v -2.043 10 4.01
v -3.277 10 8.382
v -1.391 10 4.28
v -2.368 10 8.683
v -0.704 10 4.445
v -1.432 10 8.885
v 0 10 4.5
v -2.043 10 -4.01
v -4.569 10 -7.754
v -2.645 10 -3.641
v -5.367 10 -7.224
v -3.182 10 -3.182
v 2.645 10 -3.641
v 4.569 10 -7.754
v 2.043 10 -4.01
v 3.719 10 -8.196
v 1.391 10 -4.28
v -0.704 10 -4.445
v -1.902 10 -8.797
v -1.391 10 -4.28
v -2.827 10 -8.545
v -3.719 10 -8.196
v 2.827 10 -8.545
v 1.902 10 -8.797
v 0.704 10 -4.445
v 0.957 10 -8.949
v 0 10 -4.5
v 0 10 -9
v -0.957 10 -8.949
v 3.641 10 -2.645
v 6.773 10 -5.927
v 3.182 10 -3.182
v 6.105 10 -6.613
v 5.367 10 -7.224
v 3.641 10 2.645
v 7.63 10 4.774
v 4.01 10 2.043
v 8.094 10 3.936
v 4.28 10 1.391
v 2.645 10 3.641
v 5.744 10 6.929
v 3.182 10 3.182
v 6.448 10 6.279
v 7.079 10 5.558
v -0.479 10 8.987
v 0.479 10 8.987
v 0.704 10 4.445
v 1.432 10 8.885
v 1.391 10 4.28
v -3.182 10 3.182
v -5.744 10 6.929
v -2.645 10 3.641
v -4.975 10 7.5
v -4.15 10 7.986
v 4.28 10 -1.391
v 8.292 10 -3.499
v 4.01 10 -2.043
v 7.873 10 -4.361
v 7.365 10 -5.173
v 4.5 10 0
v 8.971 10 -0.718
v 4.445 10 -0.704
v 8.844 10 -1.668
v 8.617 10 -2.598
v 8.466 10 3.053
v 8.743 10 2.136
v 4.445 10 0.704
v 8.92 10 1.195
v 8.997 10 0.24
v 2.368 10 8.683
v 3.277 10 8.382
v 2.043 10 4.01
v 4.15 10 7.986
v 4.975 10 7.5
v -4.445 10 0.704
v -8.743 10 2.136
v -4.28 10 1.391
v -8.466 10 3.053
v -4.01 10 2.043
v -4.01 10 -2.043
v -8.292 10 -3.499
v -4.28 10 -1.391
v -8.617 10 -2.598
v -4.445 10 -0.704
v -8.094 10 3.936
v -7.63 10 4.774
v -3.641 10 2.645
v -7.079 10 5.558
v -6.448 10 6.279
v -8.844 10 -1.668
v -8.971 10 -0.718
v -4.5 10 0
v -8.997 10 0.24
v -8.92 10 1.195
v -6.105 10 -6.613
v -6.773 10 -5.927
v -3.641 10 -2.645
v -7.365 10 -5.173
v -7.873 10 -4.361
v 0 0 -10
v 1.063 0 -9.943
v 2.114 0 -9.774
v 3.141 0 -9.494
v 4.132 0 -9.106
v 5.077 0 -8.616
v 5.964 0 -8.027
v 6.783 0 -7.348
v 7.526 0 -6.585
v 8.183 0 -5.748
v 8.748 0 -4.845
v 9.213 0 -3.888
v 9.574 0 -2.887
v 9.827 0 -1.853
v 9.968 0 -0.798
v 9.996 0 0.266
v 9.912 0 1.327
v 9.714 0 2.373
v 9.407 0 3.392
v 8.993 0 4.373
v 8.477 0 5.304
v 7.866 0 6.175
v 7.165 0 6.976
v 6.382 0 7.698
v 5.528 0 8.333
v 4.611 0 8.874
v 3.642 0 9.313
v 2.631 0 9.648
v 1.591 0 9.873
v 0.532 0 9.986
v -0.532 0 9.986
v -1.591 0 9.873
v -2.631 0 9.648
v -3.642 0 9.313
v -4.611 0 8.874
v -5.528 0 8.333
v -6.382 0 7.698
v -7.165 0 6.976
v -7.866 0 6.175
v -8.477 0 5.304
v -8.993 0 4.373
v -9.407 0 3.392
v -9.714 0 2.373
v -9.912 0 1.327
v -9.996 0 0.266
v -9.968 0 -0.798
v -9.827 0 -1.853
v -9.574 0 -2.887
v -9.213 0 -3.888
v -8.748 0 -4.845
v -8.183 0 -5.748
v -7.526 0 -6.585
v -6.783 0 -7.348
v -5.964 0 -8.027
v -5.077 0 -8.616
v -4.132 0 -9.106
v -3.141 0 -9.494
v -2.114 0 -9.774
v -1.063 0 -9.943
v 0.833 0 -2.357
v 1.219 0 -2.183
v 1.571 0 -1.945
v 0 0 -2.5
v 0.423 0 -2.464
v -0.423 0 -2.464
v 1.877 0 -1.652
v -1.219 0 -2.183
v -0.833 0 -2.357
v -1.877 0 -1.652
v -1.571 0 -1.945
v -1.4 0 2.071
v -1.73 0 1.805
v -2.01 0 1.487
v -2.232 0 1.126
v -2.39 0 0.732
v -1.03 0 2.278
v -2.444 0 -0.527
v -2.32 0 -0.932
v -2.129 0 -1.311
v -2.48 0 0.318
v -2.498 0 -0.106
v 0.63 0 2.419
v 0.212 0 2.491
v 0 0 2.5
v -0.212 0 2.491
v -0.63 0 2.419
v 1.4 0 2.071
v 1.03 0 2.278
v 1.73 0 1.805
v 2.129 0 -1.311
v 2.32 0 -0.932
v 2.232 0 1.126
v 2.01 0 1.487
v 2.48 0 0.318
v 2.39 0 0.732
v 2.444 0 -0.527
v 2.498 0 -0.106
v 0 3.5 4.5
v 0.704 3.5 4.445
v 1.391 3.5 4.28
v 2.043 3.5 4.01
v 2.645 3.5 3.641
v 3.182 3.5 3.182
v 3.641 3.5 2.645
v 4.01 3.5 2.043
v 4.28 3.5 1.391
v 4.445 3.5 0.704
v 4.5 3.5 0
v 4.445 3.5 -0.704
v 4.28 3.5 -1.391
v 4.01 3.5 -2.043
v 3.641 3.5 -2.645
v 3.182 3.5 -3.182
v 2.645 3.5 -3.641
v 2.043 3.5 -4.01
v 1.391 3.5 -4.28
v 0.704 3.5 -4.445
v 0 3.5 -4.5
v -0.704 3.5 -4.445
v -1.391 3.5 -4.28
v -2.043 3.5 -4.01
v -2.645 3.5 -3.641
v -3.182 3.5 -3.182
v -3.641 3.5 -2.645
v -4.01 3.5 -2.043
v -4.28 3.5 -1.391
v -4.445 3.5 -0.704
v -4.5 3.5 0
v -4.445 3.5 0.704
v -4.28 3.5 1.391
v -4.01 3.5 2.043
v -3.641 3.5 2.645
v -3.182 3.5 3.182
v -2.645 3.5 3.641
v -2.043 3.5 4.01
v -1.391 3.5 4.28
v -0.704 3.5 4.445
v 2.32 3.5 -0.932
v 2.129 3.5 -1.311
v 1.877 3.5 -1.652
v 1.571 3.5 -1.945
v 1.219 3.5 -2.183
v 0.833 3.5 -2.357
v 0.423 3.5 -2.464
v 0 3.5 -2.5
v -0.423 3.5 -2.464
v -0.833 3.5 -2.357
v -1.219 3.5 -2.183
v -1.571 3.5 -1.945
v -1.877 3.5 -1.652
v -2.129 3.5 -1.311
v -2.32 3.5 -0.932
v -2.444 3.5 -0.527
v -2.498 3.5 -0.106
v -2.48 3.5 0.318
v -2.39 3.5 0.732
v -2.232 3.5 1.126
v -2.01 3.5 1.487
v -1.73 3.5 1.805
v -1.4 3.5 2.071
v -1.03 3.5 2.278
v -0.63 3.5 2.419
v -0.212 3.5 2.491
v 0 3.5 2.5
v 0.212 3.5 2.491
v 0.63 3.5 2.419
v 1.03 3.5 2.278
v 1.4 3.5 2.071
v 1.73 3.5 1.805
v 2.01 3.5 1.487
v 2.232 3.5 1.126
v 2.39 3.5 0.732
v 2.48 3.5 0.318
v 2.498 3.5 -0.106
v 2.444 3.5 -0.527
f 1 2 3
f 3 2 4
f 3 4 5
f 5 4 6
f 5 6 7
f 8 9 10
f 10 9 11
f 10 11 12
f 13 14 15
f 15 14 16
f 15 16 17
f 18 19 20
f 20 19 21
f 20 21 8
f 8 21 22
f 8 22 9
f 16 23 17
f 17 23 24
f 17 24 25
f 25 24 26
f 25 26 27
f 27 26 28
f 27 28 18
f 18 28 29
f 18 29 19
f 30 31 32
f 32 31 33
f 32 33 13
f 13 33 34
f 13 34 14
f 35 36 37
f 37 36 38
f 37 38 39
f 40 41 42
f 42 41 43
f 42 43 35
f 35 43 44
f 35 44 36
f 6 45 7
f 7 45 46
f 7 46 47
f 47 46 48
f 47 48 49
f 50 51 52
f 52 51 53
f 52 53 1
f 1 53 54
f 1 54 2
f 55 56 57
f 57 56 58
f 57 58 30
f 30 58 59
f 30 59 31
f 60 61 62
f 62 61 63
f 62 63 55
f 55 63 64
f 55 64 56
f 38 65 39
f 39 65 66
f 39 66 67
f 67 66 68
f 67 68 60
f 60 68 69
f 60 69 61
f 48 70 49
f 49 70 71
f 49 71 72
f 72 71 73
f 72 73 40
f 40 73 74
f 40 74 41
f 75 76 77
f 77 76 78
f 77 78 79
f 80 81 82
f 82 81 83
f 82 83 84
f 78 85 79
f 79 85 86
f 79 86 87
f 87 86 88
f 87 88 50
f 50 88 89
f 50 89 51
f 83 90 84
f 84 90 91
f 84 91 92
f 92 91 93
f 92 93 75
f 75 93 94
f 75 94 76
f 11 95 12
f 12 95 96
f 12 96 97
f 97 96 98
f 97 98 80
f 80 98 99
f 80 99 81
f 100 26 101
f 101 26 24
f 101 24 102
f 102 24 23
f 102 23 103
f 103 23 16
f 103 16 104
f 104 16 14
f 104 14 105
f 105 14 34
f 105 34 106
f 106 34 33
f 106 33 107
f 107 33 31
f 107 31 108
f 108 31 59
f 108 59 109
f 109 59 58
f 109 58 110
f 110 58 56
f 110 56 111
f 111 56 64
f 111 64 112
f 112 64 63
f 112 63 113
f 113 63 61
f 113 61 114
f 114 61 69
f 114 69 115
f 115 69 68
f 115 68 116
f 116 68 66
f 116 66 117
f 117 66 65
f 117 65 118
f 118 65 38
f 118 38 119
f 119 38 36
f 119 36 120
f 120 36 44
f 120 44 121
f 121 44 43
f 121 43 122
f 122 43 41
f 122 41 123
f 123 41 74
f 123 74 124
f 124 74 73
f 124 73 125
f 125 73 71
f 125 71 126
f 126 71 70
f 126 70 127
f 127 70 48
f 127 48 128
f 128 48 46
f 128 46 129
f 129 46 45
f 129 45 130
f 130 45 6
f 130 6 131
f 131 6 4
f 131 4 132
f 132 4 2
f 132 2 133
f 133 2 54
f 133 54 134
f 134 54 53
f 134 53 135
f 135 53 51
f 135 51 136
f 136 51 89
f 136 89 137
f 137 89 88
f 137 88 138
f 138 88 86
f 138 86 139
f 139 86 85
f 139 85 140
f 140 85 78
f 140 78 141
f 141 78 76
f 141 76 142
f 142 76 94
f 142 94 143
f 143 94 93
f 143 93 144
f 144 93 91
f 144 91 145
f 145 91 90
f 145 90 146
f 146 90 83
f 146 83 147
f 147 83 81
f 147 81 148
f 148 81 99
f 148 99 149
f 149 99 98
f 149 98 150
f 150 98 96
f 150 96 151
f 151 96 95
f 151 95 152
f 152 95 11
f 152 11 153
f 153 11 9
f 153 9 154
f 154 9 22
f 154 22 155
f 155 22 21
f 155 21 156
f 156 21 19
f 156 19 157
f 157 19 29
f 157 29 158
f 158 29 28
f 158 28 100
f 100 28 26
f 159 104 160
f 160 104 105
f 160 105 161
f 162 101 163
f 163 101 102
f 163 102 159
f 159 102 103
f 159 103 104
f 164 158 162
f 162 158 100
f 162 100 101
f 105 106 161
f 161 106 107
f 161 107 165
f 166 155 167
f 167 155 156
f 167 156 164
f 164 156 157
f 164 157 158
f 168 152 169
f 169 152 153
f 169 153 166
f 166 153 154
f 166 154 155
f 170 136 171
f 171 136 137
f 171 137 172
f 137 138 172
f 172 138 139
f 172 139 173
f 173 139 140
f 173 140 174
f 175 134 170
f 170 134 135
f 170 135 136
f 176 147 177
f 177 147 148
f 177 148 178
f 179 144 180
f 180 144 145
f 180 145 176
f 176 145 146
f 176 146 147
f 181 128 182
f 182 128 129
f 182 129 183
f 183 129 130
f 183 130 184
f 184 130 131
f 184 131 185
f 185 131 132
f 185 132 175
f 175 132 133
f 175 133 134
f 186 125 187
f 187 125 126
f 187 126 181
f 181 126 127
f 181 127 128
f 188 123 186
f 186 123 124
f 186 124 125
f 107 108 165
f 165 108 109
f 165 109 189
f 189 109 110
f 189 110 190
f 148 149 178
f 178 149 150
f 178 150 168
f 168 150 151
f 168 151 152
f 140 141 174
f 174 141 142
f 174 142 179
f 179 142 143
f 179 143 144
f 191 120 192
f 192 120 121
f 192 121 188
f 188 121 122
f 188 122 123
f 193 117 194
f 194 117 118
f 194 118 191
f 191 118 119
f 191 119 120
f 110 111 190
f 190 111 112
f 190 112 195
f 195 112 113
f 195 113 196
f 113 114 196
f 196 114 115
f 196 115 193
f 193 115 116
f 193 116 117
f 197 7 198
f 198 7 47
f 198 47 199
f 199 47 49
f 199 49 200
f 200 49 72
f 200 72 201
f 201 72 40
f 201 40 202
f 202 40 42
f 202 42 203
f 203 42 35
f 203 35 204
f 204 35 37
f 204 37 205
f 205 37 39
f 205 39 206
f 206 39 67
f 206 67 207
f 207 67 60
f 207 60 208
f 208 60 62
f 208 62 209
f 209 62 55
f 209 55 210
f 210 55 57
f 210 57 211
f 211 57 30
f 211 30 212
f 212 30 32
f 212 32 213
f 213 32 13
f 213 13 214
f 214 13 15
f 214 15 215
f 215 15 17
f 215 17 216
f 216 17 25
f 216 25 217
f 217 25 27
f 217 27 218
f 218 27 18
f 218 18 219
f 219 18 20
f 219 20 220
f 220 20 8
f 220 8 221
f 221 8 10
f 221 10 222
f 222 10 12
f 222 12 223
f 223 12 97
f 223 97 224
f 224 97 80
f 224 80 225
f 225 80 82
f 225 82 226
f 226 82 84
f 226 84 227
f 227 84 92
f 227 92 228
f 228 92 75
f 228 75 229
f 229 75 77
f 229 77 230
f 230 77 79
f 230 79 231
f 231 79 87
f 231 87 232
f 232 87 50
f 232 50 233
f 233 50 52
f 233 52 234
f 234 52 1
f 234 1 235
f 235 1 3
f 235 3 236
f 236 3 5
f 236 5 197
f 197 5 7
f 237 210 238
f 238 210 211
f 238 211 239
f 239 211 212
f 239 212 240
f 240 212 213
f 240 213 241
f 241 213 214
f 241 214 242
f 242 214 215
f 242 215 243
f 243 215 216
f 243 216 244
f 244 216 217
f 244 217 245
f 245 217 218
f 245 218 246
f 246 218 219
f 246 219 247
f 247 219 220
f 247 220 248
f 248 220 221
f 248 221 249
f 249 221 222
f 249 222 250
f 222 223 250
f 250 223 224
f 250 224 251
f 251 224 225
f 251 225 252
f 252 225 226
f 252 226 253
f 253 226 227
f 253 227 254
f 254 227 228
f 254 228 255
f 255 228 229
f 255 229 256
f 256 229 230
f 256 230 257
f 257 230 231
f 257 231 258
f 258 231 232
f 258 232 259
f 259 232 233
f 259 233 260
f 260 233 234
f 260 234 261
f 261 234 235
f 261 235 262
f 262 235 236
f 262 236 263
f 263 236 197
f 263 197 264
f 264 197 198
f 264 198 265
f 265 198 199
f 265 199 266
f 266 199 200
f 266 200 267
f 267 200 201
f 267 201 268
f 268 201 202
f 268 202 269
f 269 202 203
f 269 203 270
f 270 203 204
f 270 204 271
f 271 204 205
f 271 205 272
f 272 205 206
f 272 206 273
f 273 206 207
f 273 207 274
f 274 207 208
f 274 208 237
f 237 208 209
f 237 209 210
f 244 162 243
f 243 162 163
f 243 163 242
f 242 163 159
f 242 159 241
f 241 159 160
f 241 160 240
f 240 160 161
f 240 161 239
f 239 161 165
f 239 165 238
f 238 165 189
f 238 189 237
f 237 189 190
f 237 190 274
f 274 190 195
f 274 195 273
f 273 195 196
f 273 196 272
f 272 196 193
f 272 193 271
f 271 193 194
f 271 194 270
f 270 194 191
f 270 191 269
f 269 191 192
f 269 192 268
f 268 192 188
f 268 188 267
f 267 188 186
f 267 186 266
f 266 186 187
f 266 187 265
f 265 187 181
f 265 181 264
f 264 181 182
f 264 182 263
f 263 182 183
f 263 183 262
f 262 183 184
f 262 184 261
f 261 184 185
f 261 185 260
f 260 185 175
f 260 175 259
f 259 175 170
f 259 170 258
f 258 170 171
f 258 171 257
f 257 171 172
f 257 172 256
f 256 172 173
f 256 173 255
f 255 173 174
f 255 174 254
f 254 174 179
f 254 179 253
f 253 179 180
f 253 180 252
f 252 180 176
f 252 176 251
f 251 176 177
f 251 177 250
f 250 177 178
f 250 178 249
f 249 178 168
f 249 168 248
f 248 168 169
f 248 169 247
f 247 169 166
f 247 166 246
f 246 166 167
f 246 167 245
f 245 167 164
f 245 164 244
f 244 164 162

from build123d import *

# Parameters (mm, degrees)
SZKIC6_R                               = 4.5
WYTNIJ_WYCI_GNI_CIE1_DEPTH             = 6.5
WYTNIJ_WYCI_GNI_CIE2_REACH             = 5.5
SZKIC7_R                               = 2.5
WYTNIJ_WYCI_GNI_CIE2_DIRECTION_2_DEPTH = 7.5


with BuildPart() as part:
    # Szkic5 → Obrót1 (revolve)
    with BuildSketch(Plane(origin=(0, 0, 0), x_dir=(0, 0, -1), z_dir=(1, 0, 0))):
        Polygon((0, 10), (-9, 10), (-10, 0), (0, 0), align=None)
    revolve(axis=Axis((0, 0, 0), (0, 1, 0)))

    # Szkic6 → Wytnij-wyciągnięcie1 (cut)
    with BuildSketch(Plane(origin=(0, 10, 0), x_dir=(1, 0, 0), z_dir=(0, 1, 0))):
        Circle(SZKIC6_R)
    extrude(amount=-WYTNIJ_WYCI_GNI_CIE1_DEPTH, mode=Mode.SUBTRACT)

    # Szkic7 → Wytnij-wyciągnięcie2 (cut, up to next)
    with BuildSketch(Plane(origin=(0, 3.5, 0), x_dir=(1, 0, 0), z_dir=(0, 1, 0)), mode=Mode.PRIVATE) as wytnij_wyci_gni_cie2_sk1:
        Circle(SZKIC7_R)
    wytnij_wyci_gni_cie2_tool1 = extrude(wytnij_wyci_gni_cie2_sk1.sketch, amount=-WYTNIJ_WYCI_GNI_CIE2_REACH, mode=Mode.PRIVATE) & part.part
    add(wytnij_wyci_gni_cie2_tool1.solids().sort_by_distance((0, 3.5, 0))[0], mode=Mode.SUBTRACT)

    # Szkic7 → Wytnij-wyciągnięcie2 direction 2 (cut)
    with BuildSketch(Plane(origin=(0, 3.5, 0), x_dir=(1, 0, 0), z_dir=(0, 1, 0))):
        Circle(SZKIC7_R)
    extrude(amount=WYTNIJ_WYCI_GNI_CIE2_DIRECTION_2_DEPTH, mode=Mode.SUBTRACT)


solid = part.part
